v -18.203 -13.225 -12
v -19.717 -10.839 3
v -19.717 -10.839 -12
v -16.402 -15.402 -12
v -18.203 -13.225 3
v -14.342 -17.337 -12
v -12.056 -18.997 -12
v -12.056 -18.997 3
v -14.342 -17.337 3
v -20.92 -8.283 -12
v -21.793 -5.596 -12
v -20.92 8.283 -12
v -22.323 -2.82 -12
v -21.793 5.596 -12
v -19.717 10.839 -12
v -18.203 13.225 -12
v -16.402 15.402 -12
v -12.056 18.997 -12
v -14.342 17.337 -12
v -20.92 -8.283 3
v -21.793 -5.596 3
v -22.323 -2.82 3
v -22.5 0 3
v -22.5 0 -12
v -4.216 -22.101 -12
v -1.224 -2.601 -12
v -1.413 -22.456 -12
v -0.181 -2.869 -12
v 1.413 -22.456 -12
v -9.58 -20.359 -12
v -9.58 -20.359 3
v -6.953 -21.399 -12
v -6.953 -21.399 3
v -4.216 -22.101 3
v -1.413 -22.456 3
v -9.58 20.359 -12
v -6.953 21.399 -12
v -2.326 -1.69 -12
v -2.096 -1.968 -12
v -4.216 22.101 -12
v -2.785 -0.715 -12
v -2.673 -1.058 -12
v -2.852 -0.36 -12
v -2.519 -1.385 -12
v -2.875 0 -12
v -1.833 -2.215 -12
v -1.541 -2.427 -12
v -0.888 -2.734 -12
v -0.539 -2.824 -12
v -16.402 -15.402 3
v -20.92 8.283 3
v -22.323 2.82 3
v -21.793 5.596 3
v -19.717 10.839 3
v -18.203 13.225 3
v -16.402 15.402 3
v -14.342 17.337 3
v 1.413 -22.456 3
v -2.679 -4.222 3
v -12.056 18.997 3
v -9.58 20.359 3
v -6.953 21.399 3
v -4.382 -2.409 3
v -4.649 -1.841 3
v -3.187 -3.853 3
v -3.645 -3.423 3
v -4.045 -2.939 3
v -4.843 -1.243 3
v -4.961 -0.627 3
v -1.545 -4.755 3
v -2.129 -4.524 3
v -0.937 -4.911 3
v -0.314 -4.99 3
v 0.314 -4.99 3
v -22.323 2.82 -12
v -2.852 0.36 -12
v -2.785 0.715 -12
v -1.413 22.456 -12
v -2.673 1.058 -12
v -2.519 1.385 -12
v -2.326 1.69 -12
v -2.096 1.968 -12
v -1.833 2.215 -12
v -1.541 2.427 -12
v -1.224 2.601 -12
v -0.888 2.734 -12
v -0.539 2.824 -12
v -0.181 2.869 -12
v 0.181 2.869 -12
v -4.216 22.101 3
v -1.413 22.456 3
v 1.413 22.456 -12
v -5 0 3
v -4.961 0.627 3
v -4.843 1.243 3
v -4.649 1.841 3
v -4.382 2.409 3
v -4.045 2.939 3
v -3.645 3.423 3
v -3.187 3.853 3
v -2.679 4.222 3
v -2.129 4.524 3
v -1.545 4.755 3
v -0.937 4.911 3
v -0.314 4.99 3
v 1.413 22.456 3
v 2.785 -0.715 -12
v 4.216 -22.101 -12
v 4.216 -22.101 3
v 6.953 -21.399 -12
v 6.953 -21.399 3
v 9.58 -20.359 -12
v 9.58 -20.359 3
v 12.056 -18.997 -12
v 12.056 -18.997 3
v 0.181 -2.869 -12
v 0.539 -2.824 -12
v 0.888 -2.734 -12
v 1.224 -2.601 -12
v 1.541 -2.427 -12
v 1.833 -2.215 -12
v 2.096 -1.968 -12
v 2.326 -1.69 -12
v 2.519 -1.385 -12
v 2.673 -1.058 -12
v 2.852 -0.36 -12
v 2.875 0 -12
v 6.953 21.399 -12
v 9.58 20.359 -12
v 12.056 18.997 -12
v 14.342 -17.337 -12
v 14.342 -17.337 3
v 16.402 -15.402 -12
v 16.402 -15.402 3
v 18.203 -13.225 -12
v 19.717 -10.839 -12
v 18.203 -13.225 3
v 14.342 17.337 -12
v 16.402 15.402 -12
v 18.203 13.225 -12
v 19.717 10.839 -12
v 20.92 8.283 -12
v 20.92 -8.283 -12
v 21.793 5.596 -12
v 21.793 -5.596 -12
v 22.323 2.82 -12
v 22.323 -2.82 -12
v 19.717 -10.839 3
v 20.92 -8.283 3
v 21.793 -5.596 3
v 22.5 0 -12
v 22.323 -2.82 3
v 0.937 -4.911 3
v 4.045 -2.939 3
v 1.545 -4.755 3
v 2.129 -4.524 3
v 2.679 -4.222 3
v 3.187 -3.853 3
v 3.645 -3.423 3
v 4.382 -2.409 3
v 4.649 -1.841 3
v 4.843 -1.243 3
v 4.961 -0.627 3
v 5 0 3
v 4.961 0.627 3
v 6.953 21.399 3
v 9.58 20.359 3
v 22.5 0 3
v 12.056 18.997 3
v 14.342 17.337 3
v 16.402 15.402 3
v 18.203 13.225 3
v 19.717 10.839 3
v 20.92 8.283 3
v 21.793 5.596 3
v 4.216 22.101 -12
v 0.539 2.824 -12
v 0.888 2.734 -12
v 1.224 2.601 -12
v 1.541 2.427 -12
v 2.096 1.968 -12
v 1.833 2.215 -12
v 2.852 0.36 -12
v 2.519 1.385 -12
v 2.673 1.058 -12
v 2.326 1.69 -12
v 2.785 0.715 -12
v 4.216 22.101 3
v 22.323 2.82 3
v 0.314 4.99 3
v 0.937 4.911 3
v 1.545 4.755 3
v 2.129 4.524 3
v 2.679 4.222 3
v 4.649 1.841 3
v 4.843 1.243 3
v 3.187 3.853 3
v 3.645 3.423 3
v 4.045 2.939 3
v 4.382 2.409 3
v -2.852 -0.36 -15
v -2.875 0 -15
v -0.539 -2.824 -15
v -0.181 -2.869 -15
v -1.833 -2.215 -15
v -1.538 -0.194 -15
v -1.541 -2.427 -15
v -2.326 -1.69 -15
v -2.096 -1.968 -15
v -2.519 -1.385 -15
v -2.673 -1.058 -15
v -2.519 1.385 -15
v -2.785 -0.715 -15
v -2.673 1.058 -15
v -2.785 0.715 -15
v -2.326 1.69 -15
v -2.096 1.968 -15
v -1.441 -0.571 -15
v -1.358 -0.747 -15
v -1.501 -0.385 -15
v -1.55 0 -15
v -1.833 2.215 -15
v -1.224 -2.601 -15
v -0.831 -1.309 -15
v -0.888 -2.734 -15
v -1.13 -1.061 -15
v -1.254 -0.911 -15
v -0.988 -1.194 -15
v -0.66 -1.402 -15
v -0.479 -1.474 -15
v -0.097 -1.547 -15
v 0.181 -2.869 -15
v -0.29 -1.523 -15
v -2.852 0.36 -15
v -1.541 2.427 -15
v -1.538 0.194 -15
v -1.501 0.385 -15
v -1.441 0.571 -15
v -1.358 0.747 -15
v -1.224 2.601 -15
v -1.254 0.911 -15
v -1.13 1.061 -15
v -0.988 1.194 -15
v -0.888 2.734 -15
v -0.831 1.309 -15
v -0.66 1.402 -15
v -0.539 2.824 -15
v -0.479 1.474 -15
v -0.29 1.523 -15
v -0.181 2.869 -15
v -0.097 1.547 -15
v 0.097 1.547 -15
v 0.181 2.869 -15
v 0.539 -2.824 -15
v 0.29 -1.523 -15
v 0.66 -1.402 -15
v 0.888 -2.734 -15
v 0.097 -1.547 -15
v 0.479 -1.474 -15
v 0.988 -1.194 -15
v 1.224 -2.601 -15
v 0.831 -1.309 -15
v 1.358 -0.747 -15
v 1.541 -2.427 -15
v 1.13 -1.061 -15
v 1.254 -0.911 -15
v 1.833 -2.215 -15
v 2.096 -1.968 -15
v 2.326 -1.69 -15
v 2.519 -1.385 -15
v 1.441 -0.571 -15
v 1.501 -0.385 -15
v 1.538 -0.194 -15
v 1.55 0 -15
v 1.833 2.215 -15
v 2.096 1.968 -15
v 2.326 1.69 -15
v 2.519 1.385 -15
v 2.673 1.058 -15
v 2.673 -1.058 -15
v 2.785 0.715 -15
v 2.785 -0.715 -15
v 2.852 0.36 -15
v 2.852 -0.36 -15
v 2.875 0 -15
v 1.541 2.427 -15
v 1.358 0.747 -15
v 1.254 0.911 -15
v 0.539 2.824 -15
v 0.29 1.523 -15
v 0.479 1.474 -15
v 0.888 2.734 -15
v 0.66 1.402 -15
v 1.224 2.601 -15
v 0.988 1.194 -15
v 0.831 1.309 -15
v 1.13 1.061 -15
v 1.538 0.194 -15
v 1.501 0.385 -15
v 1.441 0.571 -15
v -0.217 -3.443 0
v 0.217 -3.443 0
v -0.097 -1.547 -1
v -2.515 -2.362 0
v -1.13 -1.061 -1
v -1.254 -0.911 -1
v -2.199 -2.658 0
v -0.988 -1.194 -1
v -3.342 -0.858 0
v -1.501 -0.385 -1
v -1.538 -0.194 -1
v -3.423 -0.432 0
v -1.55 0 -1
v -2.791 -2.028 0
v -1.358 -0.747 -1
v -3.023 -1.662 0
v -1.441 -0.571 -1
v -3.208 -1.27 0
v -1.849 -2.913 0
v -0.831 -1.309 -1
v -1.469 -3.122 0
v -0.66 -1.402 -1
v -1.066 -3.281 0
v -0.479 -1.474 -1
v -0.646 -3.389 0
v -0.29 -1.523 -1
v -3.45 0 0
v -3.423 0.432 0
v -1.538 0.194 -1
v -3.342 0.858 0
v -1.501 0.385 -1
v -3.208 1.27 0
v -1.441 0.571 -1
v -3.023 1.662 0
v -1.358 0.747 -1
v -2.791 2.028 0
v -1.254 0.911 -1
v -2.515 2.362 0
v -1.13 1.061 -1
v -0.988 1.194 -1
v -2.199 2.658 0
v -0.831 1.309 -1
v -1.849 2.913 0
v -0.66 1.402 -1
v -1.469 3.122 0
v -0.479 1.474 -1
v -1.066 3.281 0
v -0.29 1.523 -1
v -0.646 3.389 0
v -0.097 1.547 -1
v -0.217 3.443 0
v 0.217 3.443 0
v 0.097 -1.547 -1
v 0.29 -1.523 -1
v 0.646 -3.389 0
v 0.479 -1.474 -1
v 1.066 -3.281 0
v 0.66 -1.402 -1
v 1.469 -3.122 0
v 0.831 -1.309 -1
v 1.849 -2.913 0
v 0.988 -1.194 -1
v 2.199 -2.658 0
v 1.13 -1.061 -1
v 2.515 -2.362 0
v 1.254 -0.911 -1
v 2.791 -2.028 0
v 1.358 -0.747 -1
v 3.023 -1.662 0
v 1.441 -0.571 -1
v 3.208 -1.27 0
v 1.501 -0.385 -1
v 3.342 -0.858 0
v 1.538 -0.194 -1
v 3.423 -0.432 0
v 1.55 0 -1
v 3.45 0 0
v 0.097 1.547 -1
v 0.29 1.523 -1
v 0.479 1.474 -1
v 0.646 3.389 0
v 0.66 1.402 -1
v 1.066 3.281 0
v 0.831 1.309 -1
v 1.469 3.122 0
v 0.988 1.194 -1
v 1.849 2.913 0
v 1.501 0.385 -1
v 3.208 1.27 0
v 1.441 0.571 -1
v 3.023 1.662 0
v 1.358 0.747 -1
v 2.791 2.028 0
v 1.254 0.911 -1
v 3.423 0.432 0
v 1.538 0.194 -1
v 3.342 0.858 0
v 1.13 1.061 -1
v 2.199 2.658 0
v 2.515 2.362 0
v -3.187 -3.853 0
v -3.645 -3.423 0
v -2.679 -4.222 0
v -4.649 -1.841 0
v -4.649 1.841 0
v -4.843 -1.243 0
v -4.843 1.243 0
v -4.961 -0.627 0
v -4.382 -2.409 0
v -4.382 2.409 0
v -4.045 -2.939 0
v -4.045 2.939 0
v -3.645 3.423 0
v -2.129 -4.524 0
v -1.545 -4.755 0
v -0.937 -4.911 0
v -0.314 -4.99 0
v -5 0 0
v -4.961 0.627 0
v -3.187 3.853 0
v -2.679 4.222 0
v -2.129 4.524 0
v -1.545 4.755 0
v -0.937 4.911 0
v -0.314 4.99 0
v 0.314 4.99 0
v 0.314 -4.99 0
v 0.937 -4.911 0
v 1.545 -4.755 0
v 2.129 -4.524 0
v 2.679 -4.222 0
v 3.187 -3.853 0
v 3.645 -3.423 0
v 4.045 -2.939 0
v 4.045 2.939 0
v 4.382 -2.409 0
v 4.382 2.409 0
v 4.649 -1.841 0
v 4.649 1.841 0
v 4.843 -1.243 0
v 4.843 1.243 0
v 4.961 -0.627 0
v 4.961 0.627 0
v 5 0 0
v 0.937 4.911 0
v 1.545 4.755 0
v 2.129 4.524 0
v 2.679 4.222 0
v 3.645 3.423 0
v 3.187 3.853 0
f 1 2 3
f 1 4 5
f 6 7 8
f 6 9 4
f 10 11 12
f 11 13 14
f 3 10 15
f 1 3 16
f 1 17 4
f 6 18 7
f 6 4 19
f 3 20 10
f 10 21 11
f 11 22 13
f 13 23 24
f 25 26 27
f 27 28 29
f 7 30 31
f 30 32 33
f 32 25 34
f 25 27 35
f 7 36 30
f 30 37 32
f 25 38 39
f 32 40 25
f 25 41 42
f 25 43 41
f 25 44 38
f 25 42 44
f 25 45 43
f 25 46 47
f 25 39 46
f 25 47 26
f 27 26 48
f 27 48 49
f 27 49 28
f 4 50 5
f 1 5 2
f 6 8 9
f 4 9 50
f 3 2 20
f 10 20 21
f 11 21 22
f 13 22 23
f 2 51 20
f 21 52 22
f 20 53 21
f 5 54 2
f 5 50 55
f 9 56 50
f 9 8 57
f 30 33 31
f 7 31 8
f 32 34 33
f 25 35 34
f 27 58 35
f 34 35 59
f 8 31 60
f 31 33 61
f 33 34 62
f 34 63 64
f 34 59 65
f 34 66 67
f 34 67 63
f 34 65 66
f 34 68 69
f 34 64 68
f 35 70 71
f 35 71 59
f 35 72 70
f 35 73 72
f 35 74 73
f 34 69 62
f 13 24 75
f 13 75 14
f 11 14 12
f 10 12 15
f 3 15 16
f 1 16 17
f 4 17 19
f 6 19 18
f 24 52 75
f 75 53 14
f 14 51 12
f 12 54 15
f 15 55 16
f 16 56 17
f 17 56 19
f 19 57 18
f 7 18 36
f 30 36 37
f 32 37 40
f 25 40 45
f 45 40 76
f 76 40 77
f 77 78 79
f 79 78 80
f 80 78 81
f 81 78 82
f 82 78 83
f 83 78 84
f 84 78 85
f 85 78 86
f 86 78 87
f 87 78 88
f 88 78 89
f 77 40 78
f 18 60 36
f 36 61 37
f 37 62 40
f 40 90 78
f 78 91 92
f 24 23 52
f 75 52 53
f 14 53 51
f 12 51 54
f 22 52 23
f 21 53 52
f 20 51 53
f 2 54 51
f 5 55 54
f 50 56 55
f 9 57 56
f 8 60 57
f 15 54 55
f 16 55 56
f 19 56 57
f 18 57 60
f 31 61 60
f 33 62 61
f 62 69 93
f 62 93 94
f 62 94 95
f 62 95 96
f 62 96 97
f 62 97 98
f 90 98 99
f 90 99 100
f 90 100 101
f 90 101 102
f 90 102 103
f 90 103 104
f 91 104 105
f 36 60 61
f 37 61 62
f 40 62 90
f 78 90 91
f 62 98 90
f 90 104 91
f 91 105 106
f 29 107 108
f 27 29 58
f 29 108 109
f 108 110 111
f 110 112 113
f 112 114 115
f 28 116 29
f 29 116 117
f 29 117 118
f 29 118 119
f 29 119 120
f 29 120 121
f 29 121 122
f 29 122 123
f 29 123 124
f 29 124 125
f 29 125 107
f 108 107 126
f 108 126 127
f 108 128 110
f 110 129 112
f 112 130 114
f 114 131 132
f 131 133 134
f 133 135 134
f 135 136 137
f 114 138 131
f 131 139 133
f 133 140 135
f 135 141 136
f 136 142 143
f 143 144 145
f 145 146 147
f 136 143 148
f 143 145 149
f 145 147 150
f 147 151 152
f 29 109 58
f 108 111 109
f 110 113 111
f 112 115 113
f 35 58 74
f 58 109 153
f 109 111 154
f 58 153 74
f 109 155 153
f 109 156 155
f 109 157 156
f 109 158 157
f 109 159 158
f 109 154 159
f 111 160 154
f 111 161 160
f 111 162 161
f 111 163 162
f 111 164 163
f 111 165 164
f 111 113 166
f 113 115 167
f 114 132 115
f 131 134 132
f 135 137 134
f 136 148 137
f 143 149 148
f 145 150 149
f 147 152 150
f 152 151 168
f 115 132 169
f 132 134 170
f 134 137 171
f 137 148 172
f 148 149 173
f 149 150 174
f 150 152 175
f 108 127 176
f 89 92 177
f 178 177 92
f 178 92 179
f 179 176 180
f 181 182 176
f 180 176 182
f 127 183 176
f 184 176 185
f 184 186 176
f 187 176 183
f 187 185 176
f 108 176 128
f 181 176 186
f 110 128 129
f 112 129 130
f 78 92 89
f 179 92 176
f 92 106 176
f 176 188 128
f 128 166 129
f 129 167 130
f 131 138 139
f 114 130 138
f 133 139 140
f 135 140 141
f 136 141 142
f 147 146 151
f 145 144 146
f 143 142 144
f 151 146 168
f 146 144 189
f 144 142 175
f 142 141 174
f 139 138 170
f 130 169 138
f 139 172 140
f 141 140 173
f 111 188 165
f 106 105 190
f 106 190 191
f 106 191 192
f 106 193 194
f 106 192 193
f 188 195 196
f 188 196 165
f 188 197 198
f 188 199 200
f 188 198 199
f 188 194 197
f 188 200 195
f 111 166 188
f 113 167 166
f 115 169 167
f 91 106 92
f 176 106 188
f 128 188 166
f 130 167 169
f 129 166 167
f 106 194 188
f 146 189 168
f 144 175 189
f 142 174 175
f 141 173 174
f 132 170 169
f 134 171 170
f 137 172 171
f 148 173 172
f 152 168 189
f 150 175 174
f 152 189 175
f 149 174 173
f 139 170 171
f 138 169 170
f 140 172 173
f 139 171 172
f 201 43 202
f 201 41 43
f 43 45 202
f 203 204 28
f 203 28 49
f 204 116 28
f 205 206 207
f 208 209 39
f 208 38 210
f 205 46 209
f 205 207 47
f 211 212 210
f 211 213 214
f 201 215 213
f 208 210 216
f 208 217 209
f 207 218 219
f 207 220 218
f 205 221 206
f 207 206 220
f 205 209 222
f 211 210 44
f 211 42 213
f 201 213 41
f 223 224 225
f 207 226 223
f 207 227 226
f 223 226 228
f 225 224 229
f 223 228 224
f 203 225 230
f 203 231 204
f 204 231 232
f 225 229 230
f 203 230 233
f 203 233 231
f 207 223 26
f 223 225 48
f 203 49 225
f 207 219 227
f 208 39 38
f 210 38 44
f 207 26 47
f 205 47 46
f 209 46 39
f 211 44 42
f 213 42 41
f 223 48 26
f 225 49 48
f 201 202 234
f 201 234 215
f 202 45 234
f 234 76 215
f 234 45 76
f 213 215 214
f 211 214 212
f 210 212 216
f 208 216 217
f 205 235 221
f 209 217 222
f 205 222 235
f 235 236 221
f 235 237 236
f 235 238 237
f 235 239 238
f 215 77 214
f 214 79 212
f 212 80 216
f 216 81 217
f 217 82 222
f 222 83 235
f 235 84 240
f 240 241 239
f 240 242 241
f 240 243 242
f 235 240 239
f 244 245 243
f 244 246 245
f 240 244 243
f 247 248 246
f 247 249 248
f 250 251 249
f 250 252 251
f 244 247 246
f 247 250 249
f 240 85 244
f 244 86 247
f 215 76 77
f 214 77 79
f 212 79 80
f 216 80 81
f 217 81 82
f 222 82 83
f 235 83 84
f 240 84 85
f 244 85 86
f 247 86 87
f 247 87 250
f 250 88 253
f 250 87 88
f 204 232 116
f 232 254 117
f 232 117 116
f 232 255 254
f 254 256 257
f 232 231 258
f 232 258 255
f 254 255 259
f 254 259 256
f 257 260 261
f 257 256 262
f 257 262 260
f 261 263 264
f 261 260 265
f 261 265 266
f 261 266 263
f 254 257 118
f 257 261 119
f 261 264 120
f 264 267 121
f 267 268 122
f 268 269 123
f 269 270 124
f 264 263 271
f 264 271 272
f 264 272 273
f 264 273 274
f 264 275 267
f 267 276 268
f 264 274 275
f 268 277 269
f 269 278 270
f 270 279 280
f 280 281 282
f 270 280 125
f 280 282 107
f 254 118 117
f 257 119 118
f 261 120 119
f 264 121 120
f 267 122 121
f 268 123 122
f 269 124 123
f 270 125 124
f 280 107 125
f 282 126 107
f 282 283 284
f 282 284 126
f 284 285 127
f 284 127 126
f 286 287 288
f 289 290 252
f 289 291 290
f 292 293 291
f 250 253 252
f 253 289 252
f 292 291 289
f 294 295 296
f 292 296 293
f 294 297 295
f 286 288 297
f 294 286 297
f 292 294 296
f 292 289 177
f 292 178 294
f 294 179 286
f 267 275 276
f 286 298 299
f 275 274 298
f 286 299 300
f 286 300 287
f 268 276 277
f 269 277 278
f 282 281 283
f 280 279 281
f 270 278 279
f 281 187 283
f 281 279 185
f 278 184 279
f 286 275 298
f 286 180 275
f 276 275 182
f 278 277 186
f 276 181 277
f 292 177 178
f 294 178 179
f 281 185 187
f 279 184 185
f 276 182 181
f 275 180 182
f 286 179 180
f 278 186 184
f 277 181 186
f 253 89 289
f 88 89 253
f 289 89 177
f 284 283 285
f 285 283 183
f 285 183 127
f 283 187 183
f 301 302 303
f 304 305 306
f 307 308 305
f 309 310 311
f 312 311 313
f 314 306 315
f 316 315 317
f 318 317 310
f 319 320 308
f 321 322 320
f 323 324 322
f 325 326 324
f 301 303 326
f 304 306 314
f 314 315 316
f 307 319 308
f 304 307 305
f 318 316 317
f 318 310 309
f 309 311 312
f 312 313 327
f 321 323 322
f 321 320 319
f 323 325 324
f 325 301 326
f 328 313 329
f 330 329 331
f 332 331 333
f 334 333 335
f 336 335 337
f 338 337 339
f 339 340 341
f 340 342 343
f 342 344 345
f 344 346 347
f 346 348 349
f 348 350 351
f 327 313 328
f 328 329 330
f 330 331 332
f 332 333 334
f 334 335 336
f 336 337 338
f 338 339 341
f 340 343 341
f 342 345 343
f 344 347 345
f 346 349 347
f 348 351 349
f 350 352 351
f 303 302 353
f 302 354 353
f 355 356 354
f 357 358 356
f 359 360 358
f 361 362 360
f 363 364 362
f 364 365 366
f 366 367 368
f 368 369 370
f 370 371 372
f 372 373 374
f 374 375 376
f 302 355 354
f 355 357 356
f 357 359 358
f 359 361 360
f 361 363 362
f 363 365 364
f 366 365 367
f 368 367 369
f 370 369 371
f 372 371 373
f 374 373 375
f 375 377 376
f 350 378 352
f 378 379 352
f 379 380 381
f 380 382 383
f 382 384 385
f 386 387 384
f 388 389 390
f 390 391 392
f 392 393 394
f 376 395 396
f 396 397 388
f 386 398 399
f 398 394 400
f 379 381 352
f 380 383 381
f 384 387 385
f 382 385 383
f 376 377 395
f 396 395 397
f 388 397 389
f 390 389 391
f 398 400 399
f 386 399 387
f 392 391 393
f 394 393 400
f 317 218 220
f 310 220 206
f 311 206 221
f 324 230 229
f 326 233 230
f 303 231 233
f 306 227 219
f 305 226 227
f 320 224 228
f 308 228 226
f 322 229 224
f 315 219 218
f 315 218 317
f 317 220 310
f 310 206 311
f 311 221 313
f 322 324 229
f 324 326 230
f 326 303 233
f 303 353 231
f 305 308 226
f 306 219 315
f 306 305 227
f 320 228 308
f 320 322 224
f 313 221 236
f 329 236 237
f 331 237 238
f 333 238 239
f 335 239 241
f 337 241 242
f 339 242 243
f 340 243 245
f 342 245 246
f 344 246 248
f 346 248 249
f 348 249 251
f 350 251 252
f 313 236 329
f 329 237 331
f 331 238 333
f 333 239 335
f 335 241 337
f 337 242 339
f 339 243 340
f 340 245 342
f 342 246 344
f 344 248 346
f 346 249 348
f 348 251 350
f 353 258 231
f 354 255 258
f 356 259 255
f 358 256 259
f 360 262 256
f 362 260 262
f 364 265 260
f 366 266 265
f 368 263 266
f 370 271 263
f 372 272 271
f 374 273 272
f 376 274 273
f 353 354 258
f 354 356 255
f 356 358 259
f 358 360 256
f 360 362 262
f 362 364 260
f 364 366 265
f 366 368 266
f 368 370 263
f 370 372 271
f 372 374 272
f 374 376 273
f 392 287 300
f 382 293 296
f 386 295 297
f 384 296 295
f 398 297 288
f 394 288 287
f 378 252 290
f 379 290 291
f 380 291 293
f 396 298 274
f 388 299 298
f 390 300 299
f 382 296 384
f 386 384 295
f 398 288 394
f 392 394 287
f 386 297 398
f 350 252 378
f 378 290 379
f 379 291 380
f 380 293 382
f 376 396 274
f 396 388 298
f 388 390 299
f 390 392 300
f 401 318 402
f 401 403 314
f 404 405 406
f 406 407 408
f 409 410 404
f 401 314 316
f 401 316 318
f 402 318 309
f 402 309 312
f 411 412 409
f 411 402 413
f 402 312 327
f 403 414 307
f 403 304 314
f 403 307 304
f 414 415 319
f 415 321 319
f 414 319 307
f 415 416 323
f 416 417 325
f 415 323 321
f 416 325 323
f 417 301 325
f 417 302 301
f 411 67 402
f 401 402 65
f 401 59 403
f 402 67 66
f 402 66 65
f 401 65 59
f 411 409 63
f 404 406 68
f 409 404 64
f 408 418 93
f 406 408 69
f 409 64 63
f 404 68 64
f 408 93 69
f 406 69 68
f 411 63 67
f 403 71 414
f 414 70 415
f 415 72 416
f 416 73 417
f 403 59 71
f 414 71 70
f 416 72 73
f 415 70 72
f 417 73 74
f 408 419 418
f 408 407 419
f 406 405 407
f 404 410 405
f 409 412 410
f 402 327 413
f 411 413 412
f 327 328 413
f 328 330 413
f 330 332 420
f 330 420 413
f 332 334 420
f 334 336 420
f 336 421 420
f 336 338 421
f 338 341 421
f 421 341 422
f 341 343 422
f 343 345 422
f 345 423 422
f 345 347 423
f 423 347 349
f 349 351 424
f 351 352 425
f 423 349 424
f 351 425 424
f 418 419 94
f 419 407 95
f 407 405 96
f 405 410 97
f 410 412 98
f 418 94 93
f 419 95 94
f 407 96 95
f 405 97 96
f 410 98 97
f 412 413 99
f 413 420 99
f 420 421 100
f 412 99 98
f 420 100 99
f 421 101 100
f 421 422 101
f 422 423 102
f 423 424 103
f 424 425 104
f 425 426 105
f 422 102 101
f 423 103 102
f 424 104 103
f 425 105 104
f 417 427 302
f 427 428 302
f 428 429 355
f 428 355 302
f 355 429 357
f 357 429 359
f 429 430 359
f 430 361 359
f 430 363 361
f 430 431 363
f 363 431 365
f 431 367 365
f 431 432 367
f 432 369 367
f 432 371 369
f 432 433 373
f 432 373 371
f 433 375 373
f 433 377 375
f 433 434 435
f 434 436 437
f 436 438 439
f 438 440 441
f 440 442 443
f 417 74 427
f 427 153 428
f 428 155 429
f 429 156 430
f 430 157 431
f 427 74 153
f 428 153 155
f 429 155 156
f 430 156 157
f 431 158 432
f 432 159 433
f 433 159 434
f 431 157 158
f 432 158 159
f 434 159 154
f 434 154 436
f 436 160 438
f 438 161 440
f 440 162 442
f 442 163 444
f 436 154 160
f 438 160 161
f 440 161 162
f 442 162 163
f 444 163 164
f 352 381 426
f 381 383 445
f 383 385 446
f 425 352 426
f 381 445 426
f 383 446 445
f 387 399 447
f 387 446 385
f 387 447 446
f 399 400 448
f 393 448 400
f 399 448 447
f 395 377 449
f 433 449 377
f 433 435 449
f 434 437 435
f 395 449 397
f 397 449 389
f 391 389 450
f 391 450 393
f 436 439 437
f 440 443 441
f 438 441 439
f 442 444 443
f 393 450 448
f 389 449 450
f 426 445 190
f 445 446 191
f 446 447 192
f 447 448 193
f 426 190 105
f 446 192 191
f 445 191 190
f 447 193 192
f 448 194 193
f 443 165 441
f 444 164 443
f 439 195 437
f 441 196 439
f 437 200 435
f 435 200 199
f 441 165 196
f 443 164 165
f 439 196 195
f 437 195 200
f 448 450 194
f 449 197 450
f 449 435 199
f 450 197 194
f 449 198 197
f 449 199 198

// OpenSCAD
$fn = 50;


difference() {
	union() {
		translate(v = [0, 0, -12.0000000000]) {
			cylinder(h = 15, r = 22.5000000000);
		}
		#translate(v = [0, 0, -15.0000000000]) {
			cylinder(h = 15, r = 2.8750000000);
		}
	}
	union() {
		translate(v = [0, 0, 0]) {
			rotate(a = [0, 0, 0]) {
				difference() {
					union() {
						translate(v = [0, 0, -15.0000000000]) {
							cylinder(h = 15, r = 1.2500000000);
						}
						translate(v = [0, 0, -1.0000000000]) {
							cylinder(h = 1.0000000000, r1 = 1.5500000000, r2 = 3.4500000000);
						}
						translate(v = [0, 0, -15.0000000000]) {
							cylinder(h = 15, r = 1.5500000000);
						}
						translate(v = [0, 0, -15.0000000000]) {
							cylinder(h = 15, r = 1.2500000000);
						}
					}
					union();
				}
			}
		}
		#cylinder(h = 3, r = 5.0000000000);
	}
}
